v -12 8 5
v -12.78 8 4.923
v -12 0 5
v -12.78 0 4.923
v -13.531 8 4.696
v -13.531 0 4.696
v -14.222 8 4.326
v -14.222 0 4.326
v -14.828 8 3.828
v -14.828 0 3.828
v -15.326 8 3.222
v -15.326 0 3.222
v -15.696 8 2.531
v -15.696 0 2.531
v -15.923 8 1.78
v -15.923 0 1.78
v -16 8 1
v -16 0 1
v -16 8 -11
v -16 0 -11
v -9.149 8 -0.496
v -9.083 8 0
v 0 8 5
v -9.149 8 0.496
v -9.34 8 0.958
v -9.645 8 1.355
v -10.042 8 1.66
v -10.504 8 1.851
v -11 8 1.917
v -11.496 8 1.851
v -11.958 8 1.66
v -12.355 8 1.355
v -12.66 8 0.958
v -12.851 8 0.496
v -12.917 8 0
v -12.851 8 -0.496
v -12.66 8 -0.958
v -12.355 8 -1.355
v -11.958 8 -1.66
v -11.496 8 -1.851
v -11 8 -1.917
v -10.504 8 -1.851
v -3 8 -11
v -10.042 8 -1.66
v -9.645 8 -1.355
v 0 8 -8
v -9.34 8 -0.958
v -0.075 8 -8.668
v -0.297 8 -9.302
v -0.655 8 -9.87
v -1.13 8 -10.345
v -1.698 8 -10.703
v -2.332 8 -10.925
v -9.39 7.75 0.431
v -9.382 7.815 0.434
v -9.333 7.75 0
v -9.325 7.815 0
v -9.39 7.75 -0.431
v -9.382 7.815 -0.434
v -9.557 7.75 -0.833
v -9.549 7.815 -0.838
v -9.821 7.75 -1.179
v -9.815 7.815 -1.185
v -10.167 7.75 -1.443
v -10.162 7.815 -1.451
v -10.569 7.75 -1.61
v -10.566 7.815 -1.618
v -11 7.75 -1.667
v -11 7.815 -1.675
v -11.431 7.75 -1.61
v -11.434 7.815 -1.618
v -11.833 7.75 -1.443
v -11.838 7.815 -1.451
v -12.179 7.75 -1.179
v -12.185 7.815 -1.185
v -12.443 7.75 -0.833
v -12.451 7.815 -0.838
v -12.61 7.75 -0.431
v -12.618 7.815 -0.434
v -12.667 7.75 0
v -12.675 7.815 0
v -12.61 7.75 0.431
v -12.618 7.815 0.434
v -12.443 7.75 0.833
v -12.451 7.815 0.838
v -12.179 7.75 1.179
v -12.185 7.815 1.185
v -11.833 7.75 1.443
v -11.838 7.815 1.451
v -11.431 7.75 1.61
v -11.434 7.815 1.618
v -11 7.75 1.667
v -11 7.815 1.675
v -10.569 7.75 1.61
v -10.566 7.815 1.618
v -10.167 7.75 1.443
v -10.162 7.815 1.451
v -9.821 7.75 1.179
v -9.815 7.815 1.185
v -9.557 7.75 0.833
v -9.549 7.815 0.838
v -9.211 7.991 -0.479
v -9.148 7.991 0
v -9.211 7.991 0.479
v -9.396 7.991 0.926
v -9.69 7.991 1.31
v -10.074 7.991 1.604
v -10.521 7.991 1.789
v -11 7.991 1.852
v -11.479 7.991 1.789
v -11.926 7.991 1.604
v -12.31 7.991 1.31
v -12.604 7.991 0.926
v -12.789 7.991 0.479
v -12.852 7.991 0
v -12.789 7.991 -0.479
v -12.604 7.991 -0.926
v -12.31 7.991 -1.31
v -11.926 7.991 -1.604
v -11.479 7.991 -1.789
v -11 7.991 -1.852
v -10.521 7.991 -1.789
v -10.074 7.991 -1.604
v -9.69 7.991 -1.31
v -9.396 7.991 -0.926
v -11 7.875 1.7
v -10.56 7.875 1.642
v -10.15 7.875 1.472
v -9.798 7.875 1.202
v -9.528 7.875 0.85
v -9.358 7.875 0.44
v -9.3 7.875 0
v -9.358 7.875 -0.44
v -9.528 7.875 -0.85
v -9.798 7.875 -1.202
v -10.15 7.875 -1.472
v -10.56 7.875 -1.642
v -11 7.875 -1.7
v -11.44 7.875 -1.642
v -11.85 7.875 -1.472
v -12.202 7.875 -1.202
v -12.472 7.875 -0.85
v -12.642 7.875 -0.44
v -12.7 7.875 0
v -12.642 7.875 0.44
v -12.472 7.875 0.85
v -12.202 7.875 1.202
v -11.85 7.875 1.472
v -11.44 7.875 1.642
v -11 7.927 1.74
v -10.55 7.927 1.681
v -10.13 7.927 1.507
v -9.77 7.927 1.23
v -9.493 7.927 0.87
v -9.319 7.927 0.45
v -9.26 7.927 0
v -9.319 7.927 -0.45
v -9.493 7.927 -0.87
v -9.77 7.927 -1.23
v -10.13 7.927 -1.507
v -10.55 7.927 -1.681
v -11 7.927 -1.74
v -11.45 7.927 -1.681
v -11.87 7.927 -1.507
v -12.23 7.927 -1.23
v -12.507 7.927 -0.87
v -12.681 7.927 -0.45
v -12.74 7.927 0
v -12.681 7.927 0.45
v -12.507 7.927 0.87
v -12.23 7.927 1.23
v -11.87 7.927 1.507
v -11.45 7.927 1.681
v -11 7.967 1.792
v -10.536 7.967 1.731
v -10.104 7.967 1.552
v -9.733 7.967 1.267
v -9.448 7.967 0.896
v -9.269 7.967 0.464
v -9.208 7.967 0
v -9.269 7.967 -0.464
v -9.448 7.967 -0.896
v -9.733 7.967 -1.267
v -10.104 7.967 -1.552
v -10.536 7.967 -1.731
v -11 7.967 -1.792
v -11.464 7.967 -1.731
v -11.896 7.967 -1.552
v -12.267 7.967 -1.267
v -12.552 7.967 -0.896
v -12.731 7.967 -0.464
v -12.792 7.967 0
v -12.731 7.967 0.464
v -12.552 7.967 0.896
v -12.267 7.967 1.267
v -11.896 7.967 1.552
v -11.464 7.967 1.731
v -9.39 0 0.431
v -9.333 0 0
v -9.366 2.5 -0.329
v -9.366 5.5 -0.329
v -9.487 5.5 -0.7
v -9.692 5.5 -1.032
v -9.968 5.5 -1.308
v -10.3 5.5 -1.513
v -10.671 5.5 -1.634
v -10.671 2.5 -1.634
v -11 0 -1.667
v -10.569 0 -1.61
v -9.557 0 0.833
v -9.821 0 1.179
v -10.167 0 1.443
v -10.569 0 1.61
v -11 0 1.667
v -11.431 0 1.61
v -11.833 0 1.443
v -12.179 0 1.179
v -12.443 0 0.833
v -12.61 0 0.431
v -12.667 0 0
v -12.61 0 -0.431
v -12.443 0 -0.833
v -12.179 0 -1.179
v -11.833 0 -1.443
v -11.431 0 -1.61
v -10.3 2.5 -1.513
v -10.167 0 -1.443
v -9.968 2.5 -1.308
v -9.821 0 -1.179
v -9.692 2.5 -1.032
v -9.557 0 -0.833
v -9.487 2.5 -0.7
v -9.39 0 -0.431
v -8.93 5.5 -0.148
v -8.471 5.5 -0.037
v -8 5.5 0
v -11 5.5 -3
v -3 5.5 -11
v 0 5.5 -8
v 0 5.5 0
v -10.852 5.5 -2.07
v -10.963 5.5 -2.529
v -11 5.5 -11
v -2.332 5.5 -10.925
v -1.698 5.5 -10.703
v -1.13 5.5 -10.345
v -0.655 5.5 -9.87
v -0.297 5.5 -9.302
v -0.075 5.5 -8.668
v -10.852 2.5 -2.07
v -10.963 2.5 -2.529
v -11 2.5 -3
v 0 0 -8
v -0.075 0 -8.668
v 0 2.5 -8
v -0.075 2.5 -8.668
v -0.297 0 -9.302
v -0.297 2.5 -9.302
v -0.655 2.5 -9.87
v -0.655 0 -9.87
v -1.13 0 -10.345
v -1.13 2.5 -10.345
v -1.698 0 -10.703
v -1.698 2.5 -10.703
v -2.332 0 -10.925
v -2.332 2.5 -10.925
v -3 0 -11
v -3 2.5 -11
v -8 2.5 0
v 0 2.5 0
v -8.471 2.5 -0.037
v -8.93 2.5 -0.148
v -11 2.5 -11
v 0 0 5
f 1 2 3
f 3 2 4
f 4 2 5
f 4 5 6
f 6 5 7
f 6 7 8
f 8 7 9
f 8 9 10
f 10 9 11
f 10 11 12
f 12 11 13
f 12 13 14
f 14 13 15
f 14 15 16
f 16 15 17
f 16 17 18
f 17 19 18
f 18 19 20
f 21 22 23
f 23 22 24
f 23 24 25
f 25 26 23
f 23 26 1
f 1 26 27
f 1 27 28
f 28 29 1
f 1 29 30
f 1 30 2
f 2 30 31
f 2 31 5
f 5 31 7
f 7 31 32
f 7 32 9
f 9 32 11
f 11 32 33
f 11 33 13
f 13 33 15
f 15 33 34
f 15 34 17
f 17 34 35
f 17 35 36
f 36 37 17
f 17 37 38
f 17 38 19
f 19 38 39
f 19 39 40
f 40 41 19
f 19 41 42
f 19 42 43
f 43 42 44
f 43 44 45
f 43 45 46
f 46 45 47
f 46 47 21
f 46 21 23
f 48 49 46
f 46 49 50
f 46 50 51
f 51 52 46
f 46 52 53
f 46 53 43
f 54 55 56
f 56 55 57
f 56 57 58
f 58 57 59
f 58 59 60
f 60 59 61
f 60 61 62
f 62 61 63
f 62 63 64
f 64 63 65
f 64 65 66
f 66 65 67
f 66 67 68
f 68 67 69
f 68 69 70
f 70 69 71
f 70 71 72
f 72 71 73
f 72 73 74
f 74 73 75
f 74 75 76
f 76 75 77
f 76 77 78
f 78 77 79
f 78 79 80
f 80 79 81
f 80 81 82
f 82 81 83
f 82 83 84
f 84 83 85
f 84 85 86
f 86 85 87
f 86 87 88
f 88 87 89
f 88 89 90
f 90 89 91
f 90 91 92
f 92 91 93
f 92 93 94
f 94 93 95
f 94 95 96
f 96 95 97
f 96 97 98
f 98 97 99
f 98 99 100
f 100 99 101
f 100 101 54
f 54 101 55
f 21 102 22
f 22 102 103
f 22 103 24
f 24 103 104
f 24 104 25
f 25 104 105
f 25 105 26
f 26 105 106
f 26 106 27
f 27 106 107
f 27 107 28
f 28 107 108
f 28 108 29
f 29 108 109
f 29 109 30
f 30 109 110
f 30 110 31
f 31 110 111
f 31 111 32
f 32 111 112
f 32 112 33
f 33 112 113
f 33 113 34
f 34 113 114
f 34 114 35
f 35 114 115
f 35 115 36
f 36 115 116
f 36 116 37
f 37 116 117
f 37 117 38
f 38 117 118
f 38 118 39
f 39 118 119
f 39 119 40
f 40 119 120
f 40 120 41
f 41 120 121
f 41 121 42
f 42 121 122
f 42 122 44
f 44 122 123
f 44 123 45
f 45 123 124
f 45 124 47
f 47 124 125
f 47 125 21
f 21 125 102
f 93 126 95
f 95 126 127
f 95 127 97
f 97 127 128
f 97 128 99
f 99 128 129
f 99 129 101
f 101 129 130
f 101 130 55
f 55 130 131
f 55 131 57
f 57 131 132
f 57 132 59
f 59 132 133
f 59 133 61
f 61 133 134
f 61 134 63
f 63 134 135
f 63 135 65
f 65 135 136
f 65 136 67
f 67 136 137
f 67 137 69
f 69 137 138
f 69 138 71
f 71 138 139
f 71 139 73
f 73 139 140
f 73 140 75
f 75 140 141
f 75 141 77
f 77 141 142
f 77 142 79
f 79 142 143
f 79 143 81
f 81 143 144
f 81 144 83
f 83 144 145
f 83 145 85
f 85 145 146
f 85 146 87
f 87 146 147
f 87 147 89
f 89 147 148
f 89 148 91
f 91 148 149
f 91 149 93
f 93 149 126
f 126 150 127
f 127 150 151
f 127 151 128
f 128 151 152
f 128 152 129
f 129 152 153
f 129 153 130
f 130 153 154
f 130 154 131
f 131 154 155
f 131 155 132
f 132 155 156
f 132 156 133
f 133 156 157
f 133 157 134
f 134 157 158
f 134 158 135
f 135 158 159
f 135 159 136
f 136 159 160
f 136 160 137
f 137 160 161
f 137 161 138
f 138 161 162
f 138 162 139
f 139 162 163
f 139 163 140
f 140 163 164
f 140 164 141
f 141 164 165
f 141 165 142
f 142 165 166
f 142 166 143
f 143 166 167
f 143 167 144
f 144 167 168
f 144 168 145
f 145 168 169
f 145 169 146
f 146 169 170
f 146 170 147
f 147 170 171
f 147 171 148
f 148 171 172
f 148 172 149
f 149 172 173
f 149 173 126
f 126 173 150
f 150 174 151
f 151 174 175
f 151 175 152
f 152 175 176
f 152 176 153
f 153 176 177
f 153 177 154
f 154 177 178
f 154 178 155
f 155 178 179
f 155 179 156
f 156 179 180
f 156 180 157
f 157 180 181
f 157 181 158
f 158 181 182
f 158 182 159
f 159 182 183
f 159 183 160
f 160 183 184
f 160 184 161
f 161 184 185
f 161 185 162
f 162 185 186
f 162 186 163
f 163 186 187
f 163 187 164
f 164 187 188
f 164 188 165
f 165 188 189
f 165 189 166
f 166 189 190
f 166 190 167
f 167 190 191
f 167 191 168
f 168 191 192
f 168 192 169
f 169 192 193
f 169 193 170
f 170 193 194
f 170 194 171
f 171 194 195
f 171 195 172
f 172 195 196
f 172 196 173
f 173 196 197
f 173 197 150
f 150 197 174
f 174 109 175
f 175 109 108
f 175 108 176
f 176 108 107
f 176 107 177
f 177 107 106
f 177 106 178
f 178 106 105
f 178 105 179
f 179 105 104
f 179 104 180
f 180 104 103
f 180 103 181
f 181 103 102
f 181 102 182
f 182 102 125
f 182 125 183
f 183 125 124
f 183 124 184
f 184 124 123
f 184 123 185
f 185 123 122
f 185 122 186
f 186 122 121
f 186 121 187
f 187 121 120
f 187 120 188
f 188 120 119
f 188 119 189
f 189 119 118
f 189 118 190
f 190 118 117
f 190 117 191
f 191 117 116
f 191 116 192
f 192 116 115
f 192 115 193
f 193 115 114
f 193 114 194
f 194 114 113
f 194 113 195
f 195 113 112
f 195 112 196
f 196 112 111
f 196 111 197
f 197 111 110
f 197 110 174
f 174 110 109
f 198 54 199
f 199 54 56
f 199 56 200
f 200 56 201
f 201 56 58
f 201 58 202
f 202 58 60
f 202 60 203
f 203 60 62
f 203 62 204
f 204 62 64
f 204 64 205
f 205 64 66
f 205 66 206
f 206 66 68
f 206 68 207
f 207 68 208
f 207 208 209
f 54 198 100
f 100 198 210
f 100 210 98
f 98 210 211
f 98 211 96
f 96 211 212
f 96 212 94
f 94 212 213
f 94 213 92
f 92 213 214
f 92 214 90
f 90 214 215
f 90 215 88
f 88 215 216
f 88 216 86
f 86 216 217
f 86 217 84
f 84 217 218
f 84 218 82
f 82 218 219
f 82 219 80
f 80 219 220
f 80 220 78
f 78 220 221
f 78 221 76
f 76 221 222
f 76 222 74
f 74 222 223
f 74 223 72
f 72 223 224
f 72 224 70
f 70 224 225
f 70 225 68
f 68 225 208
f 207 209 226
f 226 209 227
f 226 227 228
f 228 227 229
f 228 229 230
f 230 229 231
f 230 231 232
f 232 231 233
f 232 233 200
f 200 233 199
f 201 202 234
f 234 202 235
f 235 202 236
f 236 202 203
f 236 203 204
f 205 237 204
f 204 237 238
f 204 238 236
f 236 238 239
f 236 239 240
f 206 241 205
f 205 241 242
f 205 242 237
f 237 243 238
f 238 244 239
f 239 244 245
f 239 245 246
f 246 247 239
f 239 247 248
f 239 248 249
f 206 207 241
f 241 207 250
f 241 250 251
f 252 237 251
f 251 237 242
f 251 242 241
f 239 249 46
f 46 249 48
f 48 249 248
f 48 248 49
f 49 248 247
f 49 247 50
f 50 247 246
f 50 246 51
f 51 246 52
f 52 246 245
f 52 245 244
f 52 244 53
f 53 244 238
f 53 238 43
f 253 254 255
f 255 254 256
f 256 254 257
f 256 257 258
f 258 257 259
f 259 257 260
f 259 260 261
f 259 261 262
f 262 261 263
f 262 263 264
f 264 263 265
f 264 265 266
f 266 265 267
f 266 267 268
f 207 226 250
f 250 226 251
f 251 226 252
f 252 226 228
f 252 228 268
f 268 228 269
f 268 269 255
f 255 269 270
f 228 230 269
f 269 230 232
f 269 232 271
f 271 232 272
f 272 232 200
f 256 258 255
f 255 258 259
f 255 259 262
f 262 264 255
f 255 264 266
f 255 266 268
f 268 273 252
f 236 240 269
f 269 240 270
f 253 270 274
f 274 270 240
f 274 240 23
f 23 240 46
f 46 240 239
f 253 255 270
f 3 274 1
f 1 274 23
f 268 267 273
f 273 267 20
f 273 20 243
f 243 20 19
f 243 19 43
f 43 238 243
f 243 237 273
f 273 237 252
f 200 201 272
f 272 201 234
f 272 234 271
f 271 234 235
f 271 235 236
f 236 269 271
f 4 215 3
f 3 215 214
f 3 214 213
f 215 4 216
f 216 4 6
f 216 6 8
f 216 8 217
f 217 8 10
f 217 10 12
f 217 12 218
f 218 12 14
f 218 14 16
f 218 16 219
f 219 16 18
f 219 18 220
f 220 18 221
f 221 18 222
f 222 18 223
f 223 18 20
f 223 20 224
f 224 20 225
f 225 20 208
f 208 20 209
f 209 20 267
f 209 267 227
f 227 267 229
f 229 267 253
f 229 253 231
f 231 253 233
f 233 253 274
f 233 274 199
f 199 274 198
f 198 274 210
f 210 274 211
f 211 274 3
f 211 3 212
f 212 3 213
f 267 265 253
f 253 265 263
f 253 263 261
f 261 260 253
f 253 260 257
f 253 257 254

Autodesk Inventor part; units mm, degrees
ref_plane "YZ Plane" through (0, 0, 0) normal (1, 0, 0) x (0, 1, 0)
ref_plane "XZ Plane" through (0, 0, 0) normal (0, 1, 0) x (-1, 0, 0)
sketch "Sketch1" plane through (0, 0, 0) normal (0, 1, 0) x (-1, 0, 0)
  line L0 (0, 0) -> (8, 0)
  line L1 (0, 0) -> (0, 5)
  line L2 (0, 5) -> (16, 5)
  arc A0 (11, -3) -> (8, 0) centre (8, -3) ccw
  line L3 (11, -3) -> (11, -11)
  line L4 (11, -11) -> (16, -11)
  line L5 (16, -11) -> (16, 5)
  line L6 (0, 0) -> (11, -11)
  dimension "d0" = 5
  dimension "d1" = 5
  dimension "d2" = 8
  dimension "d3" = 3
  dimension "d4" = 8
extrude "Extrusion1" add sketch "Sketch1" along normal blind 8 contours L1 L2 L5 L4 L3 A0 L0
sketch "Sketch2" plane through (0, 0, 0) normal (0, -1, 0) x (1, 0, 0)
  line L0 (0, 0) -> (-8, 0) projected
  arc A0 (-8, 0) -> (-11, -3) centre (-8, -3) ccw projected
  line L1 (-11, -3) -> (-11, -11) projected
  line L2 (0, 0) -> (-11, -11)
  line L3 (-11, -11) -> (-11, -3)
  line L4 (-8, 0) -> (0, 0)
  arc A1 (-8, 0) -> (-11, -3) centre (-8, -3) ccw
  line L5 (0, 0) -> (0, -8)
  arc A2 (-3, -11) -> (0, -8) centre (-3, -8) ccw
  line L6 (-3, -11) -> (-11, -11)
extrude "Extrusion2" add sketch "Sketch2" against normal blind 2.5
ref_plane "Work Plane1" through (0, 5.5, 0) normal (0, 1, 0) x (1, 0, 0)
sketch "Sketch3" plane through (0, 5.5, 0) normal (0, 1, 0) x (1, 0, 0)
  line L0 (0, 0) -> (0, 8) projected
  arc A0 (0, 8) -> (-3, 11) centre (-3, 8) ccw projected
  line L1 (-3, 11) -> (-11, 11) projected
  line L2 (-11, 3) -> (-11, 11) projected
  arc A1 (-11, 3) -> (-8, 0) centre (-8, 3) ccw projected
  line L3 (0, 0) -> (-8, 0) projected
extrude "Extrusion3" add sketch "Sketch3" along normal blind 2.5
sketch "Sketch4" plane through (0, 8, 0) normal (0, 1, 0) x (1, 0, 0)
  arc A0 (0, 8) -> (-3, 11) centre (-3, 8) ccw projected
  line L0 (0, -5) -> (0, 8) projected
  line L1 (-3, 11) -> (-16, 11) projected
  line L2 (-16, 11) -> (-16, -5) projected
  line L3 (-16, -5) -> (0, -5) projected
  point P0 (0, 0)
sketch "Sketch5" plane through (0, 8, 0) normal (0, 1, 0) x (1, 0, 0)
  circle A0 centre (-11, 0) radius 1.6667
  line L0 (-16, -5) -> (0, -5) projected
  line L1 (-16, 11) -> (-16, -5) projected
  point P0 (0, 0)
  point P1 (-8, -5)
  point P2 (-16, 3)
  dimension "d21" = 3.3333
  dimension "d22" = 3.3333
  dimension "d23" = 3.3333
extrude "Extrusion4" cut sketch "Sketch5" against normal through all
fillet "Fillet2" radius 0.25 1 edges at (-12.6667, 8, 0)
fillet "Fillet3" radius 4 1 edges at (-16, 4, 5)
equation "\"d1\" = d0"
equation "\"d23\" = d22"
properties part number "Plate Adapter 5.0"
